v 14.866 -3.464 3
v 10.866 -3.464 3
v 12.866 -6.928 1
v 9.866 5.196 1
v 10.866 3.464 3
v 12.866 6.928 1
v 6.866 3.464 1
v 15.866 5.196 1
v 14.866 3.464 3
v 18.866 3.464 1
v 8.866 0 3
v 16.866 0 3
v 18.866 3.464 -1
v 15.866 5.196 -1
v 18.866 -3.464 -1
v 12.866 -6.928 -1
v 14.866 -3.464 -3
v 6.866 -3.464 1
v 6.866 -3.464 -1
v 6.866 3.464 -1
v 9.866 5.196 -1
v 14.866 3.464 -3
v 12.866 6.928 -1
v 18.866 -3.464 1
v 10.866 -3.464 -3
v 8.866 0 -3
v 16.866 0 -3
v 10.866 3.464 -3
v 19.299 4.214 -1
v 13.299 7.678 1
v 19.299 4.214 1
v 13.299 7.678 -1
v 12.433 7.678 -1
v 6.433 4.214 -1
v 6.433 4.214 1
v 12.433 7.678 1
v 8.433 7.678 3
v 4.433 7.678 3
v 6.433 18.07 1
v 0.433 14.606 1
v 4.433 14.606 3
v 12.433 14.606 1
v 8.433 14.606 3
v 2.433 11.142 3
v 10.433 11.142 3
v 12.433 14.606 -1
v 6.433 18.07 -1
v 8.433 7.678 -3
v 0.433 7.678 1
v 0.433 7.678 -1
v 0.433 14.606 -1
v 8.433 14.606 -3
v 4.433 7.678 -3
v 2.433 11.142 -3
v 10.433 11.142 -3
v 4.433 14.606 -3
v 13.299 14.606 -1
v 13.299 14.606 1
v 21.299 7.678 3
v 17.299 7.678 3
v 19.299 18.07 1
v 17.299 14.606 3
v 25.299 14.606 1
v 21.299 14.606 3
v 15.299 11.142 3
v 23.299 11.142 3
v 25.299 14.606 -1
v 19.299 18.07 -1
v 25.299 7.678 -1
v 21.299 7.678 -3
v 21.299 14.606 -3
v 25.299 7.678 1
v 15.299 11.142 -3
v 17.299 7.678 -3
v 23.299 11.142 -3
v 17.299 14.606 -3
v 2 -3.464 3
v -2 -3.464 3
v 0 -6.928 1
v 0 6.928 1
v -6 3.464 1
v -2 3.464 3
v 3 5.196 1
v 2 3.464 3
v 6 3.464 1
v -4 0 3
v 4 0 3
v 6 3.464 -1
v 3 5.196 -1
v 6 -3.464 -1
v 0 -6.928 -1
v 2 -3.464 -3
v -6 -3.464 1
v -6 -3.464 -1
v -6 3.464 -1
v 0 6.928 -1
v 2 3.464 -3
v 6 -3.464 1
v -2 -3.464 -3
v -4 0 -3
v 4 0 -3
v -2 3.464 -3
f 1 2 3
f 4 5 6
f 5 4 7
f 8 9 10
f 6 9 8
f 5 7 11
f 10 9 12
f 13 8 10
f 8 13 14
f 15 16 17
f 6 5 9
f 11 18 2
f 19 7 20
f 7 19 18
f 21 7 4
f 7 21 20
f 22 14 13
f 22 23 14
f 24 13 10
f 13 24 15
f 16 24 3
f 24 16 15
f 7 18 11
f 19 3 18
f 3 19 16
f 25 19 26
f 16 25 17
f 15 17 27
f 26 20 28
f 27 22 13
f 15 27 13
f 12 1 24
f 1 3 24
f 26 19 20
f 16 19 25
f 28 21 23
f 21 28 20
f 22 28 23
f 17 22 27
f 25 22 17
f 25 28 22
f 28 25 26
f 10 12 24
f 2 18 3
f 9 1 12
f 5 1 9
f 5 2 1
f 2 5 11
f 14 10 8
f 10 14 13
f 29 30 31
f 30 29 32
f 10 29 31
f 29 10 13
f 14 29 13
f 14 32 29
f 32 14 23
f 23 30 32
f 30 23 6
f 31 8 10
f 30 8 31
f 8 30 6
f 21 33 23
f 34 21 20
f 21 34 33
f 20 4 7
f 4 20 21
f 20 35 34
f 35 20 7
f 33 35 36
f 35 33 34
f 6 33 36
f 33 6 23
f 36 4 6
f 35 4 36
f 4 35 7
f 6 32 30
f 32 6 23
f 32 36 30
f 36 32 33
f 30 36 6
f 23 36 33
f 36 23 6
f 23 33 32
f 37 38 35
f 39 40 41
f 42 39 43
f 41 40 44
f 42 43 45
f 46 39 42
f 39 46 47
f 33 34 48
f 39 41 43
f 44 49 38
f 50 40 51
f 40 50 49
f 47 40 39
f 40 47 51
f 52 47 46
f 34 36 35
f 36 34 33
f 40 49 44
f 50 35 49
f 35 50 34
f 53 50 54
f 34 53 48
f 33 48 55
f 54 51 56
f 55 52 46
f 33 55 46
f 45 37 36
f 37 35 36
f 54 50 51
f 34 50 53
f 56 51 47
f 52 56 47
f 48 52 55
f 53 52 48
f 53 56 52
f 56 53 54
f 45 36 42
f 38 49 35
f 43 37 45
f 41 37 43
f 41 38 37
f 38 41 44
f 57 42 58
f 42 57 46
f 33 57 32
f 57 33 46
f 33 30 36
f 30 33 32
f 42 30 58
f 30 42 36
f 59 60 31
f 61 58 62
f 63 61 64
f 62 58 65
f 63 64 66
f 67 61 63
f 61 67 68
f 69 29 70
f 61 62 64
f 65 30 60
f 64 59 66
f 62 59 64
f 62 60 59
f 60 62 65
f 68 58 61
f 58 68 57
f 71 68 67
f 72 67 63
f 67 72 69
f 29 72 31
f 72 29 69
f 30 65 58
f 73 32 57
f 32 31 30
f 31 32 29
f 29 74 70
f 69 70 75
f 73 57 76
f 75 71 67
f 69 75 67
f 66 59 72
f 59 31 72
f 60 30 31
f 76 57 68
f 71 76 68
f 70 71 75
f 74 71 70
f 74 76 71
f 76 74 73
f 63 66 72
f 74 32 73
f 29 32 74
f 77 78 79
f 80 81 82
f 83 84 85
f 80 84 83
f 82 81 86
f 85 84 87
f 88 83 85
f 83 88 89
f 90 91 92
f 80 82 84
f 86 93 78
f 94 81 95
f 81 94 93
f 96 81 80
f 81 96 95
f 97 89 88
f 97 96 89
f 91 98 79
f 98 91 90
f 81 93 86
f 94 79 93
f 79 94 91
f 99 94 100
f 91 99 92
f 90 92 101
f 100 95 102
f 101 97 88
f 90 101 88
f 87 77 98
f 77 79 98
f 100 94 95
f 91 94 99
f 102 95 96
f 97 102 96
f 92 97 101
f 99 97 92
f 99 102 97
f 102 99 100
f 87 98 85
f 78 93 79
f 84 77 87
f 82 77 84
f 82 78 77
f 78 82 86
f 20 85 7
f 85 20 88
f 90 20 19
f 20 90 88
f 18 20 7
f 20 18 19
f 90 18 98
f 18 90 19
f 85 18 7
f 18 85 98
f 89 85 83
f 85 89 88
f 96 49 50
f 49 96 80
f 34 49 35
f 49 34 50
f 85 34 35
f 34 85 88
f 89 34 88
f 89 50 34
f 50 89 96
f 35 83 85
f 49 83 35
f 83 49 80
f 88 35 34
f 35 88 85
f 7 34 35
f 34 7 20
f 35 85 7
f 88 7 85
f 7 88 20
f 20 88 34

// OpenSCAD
// file: gem-common.scad
angles = [for(i = [0:5]) i * (360 / 6)];

inner_poly_radius=8 * cos(60);
outer_poly_radius=8 * cos(30);
outer_poly_z=1;
inner_poly_z=3;


gap_between_gems = cos(30);
distance_to_corner = cos(30) * outer_poly_radius * 2 + gap_between_gems;


module edge_connector(angle = 0) {
    function make_point_2d(r, angle, height) = [r * sin(angle), height];
    
    points = [
        make_point_2d(outer_poly_radius, 30, outer_poly_z),
        make_point_2d(outer_poly_radius, -30, outer_poly_z),
        make_point_2d(outer_poly_radius, -30, -outer_poly_z),
        make_point_2d(outer_poly_radius, 30, -outer_poly_z),
    ];
    
    rotate([0,0,angle]) {
        translate([(distance_to_corner - gap_between_gems) / 2,0,0]){
            rotate([90, 0, 90]) {
                linear_extrude(gap_between_gems) {
                    polygon(points);
                }
            }
        }
    }
}

module move(distance, angle) {
    translate([distance * cos(angle), distance * sin(angle), 0]) {
        children();
    }
}


module corner_connector(angle=0) {
    r = 0.5;
    rotate_angle = angle + 30;
    move(outer_poly_radius + r, rotate_angle) {
        translate([0,0, -outer_poly_z]) {
            rotate([0,0,-rotate_angle]) {
                cylinder($fn=3, r=r, h=outer_poly_z * 2);
            }
        }
    }
}

module gem() {
    function make_point(r, angle, height) = [r * cos(angle), r * sin(angle), height];
    
    top_poly = [for(th = angles) make_point(inner_poly_radius, th, inner_poly_z)];
    top_outer_poly = [for(th = angles) make_point(outer_poly_radius, th + 30, outer_poly_z)];
    bottom_outer_poly = [for(th = angles) make_point(outer_poly_radius, th + 30, -outer_poly_z)];
    bottom_poly = [for(th = angles) make_point(inner_poly_radius, th, -inner_poly_z)];
 
    function rot(n, base) = (n + 1 - base) % 6 + base;
    
    faces = [
        [5, 4, 3, 2, 1, 0],
        for(i = [0:5]) [i, (i + 1) % 6, i + 6],
        for(i = [6:11]) [i, (i - 5) % 6, rot(i, 6)],
        for(i = [6:11]) [i, rot(i, 6), rot(i, 6) + 6, i + 6],
        for(i = [12:17]) [i, rot(i, 12), rot(i, 12) + 6],
        for(i = [18:23]) [i, i-6, rot(i, 18)],
        [18, 19, 20, 21, 22, 23],
    ];
    
    polyhedron(
        concat(
            top_poly,
            top_outer_poly,
            bottom_outer_poly,
            bottom_poly
        ),
        faces
    );
}
// main file
include <./gem-common.scad>

gem();
edge_connector();
edge_connector(60);
corner_connector();
move(distance_to_corner, 0) {
    gem();
    edge_connector(60);
    edge_connector(120);
    corner_connector(60);
}
move(distance_to_corner, 60) {
    gem();
    edge_connector();
    move(distance_to_corner, 0) {
        gem();
    }
}
